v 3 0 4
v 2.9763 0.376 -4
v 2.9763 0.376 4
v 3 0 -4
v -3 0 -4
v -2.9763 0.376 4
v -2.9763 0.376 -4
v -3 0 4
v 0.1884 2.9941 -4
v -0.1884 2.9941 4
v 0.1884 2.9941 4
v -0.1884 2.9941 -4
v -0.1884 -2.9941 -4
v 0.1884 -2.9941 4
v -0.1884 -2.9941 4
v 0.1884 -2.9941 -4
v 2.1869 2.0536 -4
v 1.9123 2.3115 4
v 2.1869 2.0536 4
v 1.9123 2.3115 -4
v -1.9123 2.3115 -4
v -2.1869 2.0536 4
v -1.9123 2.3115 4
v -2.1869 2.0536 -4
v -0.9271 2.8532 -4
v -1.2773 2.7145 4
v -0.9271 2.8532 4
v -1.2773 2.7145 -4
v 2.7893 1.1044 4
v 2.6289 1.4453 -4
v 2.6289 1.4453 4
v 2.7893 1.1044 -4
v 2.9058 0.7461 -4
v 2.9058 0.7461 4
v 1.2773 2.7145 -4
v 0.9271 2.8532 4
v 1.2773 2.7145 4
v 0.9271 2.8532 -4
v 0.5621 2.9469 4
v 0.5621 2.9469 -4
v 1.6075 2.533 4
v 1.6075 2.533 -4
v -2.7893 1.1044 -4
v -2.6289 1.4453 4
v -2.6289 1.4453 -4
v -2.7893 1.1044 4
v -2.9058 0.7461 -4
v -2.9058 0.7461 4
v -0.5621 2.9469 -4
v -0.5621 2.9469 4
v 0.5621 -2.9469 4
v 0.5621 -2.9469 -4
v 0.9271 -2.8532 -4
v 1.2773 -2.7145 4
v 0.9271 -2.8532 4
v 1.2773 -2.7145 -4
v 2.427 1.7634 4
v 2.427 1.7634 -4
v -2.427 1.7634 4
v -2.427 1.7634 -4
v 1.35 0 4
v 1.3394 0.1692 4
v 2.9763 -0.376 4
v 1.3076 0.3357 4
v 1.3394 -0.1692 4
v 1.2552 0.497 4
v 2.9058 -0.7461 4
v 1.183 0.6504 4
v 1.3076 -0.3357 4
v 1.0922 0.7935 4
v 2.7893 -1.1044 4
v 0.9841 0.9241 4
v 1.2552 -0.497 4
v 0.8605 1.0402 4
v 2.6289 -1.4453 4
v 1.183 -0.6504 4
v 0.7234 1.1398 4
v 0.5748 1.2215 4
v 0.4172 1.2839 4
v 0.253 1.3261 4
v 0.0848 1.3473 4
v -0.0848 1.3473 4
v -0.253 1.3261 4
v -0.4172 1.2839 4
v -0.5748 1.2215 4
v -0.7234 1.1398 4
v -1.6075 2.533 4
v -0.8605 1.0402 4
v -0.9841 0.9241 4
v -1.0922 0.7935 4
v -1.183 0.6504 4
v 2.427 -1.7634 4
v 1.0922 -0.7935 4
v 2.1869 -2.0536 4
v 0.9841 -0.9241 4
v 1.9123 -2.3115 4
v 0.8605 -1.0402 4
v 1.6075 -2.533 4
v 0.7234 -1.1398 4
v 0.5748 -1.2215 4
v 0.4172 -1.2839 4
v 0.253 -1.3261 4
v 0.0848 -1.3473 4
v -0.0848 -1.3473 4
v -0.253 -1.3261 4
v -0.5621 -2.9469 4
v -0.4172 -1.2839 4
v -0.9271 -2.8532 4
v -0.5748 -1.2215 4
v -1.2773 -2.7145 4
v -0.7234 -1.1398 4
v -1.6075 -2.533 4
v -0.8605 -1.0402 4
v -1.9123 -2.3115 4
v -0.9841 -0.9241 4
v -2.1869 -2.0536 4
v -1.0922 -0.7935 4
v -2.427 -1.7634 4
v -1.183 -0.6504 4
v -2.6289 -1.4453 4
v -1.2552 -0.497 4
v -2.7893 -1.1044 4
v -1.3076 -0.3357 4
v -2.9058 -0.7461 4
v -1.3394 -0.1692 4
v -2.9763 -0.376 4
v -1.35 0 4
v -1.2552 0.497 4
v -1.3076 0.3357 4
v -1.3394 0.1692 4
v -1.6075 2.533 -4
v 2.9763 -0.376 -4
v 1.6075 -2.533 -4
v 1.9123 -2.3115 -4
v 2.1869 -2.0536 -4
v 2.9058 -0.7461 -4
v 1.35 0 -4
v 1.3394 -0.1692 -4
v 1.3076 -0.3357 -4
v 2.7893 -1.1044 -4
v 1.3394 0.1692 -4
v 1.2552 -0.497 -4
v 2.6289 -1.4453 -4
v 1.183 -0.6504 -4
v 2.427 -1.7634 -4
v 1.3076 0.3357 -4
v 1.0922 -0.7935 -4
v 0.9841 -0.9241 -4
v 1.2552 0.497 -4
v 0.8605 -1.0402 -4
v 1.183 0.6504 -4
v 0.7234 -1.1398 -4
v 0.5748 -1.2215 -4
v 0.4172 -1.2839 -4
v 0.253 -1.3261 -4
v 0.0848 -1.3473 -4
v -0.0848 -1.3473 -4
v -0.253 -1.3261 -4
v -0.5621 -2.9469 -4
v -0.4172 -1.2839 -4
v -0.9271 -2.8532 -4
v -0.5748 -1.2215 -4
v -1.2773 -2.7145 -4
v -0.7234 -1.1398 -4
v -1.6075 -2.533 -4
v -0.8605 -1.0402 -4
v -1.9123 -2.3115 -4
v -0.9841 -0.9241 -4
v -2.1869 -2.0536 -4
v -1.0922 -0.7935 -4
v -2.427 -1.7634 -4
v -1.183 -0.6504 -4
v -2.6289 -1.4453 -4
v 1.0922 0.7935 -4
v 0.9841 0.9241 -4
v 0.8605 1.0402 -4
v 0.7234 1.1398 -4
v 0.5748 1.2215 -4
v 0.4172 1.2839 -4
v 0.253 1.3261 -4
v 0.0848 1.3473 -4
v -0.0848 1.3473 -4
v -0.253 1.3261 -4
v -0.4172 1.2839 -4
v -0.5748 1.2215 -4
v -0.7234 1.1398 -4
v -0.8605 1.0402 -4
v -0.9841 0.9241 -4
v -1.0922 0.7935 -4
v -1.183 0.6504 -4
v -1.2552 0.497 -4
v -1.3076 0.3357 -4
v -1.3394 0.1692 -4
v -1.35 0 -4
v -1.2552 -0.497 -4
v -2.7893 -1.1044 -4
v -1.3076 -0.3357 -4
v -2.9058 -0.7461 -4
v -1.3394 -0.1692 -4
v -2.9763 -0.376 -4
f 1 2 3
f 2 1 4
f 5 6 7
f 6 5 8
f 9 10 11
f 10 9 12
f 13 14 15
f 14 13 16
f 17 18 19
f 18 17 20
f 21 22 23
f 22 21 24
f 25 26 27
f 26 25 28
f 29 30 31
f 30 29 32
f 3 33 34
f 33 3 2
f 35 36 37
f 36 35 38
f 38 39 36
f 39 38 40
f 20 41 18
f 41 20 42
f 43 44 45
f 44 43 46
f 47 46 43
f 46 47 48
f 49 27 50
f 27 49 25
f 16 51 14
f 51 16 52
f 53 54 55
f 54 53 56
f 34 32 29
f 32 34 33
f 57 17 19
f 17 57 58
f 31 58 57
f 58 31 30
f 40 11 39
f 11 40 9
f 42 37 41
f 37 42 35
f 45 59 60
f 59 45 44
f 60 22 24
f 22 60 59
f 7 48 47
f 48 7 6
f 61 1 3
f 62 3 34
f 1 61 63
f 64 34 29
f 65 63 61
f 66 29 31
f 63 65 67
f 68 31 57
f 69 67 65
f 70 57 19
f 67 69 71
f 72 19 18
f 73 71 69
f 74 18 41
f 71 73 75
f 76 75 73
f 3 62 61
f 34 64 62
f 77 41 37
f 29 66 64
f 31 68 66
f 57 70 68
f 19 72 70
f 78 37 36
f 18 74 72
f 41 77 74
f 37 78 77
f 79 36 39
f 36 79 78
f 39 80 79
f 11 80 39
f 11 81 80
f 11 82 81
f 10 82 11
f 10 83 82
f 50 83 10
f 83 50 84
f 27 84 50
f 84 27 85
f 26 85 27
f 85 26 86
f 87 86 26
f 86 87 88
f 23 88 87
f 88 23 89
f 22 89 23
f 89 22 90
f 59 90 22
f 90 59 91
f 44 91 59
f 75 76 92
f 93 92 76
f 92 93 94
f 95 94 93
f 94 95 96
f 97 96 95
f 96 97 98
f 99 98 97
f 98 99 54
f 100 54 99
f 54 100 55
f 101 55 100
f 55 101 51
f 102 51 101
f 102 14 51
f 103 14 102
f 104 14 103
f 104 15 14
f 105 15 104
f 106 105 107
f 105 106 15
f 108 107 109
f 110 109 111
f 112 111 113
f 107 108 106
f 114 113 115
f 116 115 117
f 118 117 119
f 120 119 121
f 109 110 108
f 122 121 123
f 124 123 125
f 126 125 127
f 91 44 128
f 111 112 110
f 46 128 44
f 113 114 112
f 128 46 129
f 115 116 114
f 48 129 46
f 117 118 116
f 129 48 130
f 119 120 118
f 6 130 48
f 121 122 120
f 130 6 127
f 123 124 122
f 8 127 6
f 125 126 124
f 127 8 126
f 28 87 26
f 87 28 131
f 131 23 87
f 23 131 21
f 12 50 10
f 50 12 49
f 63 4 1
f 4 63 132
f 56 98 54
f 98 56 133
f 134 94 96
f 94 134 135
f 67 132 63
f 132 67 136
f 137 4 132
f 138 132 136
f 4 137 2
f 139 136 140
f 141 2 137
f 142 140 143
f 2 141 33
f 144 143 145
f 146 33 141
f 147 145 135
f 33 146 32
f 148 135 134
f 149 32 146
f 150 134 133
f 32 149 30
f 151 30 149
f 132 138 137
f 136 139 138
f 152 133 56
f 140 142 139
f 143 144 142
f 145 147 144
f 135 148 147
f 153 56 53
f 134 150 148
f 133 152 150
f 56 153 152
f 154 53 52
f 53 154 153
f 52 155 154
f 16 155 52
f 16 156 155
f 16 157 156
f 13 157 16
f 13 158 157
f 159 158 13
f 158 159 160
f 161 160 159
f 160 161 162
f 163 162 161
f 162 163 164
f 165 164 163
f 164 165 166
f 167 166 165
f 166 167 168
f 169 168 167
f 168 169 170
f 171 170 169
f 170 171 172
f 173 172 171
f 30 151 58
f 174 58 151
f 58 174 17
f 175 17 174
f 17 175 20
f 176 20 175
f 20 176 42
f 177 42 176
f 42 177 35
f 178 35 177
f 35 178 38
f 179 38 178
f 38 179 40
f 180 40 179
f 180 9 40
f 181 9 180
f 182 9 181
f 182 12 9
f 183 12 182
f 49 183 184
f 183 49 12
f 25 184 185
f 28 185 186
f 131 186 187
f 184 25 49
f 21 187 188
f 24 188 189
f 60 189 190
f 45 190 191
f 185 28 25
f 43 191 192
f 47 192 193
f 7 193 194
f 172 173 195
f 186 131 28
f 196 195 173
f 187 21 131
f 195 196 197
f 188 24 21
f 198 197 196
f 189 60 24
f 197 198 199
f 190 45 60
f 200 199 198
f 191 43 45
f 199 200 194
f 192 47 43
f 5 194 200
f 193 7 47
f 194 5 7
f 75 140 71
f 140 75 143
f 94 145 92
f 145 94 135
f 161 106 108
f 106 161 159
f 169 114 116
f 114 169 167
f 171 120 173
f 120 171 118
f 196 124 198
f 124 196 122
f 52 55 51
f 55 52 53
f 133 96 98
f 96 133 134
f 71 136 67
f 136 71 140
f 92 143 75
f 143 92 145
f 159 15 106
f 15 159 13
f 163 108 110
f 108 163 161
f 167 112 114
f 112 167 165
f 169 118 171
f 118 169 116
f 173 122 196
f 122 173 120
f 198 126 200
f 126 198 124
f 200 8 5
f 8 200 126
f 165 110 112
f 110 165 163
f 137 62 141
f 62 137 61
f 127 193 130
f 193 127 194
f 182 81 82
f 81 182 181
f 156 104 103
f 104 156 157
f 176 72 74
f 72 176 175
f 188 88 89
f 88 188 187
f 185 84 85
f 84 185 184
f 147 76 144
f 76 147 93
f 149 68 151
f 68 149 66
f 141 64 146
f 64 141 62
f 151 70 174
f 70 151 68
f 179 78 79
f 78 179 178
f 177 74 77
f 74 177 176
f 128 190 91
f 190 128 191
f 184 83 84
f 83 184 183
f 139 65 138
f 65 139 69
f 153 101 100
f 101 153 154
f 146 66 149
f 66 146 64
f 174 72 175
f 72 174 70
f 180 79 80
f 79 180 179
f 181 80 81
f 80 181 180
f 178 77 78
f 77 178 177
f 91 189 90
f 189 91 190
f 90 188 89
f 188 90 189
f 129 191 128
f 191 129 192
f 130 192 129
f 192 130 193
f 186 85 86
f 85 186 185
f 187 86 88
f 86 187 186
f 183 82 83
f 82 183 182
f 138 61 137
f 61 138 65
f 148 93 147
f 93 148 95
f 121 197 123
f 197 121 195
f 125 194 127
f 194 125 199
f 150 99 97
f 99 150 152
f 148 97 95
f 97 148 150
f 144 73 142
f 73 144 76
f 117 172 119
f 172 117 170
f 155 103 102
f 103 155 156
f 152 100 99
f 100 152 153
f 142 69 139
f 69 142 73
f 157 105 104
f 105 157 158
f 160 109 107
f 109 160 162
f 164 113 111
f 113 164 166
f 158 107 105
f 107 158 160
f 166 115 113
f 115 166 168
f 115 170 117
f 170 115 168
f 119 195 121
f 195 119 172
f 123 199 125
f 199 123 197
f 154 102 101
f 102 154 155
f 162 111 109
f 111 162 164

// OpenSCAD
$fn = 50;


difference() {
	union() {
		translate(v = [0, 0, -4.0000000000]) {
			cylinder(h = 8, r = 3.0000000000);
		}
	}
	union() {
		translate(v = [0, 0, -100.0000000000]) {
			cylinder(h = 200, r = 1.3500000000);
		}
	}
}
